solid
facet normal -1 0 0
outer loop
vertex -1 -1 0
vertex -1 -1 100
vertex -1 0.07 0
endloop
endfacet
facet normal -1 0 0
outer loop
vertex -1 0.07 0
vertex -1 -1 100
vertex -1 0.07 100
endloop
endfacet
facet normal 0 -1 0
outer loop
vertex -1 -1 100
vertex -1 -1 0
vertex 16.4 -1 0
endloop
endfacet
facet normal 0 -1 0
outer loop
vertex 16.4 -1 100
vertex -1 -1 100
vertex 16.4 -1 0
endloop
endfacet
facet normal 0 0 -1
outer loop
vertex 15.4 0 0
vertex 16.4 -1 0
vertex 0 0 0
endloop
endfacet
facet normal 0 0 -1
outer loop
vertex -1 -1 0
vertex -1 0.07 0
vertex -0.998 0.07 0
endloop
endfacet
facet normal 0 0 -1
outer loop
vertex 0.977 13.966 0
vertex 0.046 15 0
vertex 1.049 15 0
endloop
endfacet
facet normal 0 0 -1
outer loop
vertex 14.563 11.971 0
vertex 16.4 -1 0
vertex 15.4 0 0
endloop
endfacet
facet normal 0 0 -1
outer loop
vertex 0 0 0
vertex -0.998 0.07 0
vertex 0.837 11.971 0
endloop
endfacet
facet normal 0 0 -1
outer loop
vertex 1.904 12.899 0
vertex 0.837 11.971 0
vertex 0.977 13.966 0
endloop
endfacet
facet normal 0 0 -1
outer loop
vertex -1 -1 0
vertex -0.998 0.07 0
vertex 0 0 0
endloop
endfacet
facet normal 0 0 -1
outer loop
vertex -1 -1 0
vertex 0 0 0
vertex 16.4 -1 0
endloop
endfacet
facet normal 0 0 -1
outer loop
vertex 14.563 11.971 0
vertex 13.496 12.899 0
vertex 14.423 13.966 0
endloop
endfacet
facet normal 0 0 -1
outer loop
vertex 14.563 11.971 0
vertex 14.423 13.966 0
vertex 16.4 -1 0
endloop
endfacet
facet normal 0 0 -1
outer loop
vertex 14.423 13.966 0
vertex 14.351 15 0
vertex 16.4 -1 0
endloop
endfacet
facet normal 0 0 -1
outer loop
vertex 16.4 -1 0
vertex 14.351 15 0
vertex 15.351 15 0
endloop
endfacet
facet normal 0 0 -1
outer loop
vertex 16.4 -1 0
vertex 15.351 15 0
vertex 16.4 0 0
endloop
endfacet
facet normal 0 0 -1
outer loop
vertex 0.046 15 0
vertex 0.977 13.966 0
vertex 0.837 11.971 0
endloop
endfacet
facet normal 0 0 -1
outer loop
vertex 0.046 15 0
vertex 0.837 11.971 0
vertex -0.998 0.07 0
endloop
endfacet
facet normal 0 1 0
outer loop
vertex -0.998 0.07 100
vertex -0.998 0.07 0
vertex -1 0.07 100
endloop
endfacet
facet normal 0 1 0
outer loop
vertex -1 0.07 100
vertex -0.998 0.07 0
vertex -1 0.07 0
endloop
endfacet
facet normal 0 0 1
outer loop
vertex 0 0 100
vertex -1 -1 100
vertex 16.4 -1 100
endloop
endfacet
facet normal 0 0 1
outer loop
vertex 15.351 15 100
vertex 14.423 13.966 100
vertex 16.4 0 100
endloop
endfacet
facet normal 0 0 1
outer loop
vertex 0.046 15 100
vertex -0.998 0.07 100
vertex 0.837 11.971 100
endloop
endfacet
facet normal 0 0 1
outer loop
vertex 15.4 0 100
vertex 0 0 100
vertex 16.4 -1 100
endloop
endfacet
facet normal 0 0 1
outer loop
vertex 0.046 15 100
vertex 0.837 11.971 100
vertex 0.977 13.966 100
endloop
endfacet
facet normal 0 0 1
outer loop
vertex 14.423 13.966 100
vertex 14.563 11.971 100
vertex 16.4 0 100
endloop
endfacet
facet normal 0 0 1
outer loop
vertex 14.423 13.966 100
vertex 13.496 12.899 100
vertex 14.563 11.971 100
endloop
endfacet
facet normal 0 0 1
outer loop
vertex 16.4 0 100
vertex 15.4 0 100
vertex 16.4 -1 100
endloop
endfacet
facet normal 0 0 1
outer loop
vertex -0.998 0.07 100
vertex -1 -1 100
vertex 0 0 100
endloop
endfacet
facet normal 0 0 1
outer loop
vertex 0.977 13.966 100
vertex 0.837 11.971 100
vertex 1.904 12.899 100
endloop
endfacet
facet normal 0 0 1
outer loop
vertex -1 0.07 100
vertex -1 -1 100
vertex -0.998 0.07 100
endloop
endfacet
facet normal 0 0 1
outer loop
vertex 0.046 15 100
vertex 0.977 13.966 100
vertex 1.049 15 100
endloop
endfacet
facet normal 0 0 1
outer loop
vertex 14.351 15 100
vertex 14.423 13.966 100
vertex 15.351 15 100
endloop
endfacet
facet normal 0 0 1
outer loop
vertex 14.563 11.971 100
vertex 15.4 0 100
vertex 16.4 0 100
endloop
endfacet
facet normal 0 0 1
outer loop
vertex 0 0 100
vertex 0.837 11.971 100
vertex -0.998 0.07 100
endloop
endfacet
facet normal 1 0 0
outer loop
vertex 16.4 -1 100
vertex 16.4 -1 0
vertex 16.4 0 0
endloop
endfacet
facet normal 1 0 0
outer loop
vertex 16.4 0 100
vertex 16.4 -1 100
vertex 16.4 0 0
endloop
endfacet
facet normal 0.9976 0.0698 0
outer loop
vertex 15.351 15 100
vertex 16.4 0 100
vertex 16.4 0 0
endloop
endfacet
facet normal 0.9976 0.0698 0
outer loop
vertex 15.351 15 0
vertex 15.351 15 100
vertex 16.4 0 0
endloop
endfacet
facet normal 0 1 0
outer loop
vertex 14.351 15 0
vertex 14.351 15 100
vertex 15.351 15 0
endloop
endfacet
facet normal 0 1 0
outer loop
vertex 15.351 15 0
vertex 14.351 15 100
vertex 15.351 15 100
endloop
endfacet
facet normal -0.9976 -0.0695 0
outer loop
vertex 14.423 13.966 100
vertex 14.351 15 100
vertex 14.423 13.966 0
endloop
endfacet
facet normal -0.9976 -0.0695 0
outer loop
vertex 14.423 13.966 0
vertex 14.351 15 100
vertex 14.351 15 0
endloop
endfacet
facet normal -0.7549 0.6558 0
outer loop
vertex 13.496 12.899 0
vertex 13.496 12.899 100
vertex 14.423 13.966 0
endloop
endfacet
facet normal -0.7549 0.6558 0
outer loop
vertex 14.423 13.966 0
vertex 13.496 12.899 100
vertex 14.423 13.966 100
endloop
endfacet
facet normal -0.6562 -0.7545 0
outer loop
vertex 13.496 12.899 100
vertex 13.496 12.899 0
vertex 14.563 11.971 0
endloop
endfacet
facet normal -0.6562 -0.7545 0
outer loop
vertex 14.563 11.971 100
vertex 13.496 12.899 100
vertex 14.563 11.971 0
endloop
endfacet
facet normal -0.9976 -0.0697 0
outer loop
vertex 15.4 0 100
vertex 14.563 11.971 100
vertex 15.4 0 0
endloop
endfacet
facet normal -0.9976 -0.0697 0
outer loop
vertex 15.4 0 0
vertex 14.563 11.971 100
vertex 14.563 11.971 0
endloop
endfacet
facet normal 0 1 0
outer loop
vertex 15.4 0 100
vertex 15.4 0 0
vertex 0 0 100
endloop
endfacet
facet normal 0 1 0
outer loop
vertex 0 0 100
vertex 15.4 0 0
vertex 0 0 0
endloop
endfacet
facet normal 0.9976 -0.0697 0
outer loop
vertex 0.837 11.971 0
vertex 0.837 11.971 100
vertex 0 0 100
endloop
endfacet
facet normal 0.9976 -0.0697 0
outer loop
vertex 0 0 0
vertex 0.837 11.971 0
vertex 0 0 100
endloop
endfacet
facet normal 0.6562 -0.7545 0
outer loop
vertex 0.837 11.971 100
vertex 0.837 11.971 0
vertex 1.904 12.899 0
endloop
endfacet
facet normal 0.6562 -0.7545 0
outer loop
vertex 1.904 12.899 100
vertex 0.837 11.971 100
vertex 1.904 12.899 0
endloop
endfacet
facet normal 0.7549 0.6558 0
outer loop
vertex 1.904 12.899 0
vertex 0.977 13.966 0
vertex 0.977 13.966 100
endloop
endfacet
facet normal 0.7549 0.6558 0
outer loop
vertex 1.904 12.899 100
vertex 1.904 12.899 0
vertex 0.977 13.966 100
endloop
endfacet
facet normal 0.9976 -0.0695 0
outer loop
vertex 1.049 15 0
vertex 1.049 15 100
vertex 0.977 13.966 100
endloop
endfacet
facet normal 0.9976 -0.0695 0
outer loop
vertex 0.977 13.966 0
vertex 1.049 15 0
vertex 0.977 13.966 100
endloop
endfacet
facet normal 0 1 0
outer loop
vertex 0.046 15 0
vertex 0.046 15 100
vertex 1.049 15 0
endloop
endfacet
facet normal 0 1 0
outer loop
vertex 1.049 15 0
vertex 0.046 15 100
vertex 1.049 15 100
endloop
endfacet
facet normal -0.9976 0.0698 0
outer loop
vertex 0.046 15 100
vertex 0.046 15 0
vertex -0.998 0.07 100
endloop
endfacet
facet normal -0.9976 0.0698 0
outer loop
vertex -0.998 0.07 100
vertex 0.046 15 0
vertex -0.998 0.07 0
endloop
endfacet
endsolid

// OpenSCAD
iw = 15.4;
id = 15;
notch = 13;
t = 1;
pinch = 4;

difference()
{

translate([-t,-t,0])cube([iw+2*t,id+t,100]);
translate([iw+t,0,-5])rotate([0,0,pinch])cube([iw+2*t,2*id,110]);
rotate([0,0,-pinch])translate([-iw-3*t,0,-5])cube([iw+2*t,2*id,110]);

translate([0,0,-5])intersection()
{
cube([iw,id*2,110]);
translate([iw,0,0])rotate([0,0,pinch])translate([-iw,0,0])difference()
{
	cube([iw,id*2,110]);
	translate([iw-t,notch,-1])rotate([0,0,-45])cube([iw,id,112]);
}
rotate([0,0,-pinch])difference()
{
	cube([iw,id*2,110]);
	translate([t,notch,-1])rotate([0,0,135])cube([iw,id,112]);
}
}
}
